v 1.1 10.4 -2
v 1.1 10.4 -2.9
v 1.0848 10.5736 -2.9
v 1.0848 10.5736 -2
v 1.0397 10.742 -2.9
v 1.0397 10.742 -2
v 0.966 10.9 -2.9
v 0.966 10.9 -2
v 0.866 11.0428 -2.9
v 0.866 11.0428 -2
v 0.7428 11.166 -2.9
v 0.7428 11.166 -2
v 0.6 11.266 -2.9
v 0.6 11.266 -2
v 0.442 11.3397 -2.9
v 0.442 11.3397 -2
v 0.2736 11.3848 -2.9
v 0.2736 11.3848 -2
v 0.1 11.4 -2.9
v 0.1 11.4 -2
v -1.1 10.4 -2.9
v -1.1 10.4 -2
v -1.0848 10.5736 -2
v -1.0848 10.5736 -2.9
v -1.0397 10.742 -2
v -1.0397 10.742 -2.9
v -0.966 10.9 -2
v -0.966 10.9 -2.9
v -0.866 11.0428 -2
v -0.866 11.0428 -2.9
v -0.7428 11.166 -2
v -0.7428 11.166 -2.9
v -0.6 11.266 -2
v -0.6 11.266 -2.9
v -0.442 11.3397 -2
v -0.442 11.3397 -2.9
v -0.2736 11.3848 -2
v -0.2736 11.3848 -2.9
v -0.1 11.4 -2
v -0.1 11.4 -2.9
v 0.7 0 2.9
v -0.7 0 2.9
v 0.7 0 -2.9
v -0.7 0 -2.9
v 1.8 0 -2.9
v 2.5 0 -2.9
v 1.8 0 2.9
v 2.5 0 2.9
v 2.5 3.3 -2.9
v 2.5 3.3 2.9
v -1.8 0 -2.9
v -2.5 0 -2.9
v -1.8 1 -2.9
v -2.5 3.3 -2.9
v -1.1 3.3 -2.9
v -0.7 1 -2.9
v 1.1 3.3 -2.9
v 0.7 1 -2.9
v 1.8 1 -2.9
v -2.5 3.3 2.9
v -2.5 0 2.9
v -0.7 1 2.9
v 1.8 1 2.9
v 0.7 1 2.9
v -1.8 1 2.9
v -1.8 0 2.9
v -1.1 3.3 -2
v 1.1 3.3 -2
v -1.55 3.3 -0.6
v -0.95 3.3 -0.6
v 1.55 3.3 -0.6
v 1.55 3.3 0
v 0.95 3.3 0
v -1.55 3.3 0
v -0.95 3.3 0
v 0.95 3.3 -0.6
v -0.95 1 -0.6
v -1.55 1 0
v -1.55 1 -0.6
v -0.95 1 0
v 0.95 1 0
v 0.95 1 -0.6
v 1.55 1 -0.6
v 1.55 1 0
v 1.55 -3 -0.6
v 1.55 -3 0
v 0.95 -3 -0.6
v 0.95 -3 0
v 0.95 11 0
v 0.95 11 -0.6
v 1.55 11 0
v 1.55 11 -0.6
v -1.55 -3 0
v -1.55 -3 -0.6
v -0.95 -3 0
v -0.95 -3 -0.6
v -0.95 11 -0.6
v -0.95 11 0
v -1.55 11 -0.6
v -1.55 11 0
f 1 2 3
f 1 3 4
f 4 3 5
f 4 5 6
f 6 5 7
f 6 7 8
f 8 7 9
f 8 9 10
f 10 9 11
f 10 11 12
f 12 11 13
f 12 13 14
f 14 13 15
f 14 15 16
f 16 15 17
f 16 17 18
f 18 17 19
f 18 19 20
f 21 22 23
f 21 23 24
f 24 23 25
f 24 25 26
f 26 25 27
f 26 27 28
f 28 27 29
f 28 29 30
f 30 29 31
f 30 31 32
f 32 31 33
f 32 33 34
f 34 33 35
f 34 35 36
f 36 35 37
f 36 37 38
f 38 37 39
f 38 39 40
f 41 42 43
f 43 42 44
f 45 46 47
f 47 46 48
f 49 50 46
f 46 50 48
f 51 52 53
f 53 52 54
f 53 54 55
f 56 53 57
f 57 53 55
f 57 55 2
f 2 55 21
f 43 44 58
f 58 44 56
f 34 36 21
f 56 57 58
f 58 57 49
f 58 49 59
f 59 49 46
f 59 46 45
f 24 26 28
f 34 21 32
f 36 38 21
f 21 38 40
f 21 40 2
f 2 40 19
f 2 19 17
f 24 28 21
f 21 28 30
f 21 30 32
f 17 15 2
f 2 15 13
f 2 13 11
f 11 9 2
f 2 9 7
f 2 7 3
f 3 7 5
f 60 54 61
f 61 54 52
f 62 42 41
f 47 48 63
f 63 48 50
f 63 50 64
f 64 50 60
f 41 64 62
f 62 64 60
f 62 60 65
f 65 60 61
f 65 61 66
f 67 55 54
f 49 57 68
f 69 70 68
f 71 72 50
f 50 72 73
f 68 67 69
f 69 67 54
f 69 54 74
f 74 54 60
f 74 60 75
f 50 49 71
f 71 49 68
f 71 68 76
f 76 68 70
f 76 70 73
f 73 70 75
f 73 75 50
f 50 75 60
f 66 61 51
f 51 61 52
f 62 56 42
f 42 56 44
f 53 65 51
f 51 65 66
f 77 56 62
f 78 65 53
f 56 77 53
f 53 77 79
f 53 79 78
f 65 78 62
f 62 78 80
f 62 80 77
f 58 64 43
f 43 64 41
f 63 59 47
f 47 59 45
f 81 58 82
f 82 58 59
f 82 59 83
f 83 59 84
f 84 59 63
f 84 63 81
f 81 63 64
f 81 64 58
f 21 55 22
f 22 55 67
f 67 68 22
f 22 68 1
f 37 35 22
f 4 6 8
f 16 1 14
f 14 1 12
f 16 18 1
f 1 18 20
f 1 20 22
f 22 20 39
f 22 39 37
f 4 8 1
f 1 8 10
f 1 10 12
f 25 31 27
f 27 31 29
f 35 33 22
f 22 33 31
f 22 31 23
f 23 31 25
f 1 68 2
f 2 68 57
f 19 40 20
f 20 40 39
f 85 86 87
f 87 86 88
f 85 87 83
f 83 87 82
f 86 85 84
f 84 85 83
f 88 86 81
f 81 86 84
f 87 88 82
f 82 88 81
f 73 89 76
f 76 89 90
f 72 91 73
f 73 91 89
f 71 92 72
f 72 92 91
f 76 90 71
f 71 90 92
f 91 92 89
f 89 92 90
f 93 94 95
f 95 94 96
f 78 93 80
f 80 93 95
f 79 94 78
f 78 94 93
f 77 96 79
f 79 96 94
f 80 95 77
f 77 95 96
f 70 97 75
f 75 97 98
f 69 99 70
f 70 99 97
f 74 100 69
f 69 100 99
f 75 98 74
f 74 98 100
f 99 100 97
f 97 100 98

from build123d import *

# Parameters (mm, degrees)
CROQUIS1_W                   = 5
CROQUIS1_H                   = 5.8
SALIENTE_EXTRUIR1_DEPTH      = 3.3
CROQUIS4_W                   = 1.1
CROQUIS4_H                   = 5.8
CORTAR_EXTRUIR1_DEPTH        = 1
CROQUIS5_W                   = 2.2
CROQUIS5_H                   = 0.9
SALIENTE_EXTRUIR2_DEPTH      = 8.1
REDONDEO4_R                  = 1
REDONDEO5_R                  = 1
SALIENTE_EXTRUIR3_DEPTH      = 4
SALIENTE_EXTRUIR3_DEPTH_BACK = 10
CROQUIS6_W                   = 0.6
CROQUIS6_H                   = 0.6


with BuildPart() as part:
    # Croquis1 → Saliente-Extruir1 (new body)
    with BuildSketch(Plane(origin=(0, 0, 0), x_dir=(1, 0, 0), z_dir=(0, 1, 0))):
        Rectangle(CROQUIS1_W, CROQUIS1_H)
    extrude(amount=SALIENTE_EXTRUIR1_DEPTH)

    # Croquis4 → Cortar-Extruir1 (cut)
    with BuildSketch(Plane.XZ):
        with Locations((-1.25, 0)):
            Rectangle(CROQUIS4_W, CROQUIS4_H)
        with Locations((1.25, 0)):
            Rectangle(CROQUIS4_W, CROQUIS4_H)
    extrude(amount=-CORTAR_EXTRUIR1_DEPTH, mode=Mode.SUBTRACT)

    # Croquis5 → Saliente-Extruir2 (add)
    with BuildSketch(Plane(origin=(0, 3.3, 0), x_dir=(1, 0, 0), z_dir=(0, 1, 0))):
        with Locations((0, 2.45)):
            Rectangle(CROQUIS5_W, CROQUIS5_H)
    extrude(amount=SALIENTE_EXTRUIR2_DEPTH)

    # Redondeo4
    redondeo4_edges = [part.edges().sort_by_distance(p)[0] for p in [
        (-1.1, 11.4, -2.45),
    ]]
    fillet(redondeo4_edges, radius=REDONDEO4_R)

    # Redondeo5
    redondeo5_edges = [part.edges().sort_by_distance(p)[0] for p in [
        (1.1, 11.4, -2.45),
    ]]
    fillet(redondeo5_edges, radius=REDONDEO5_R)

    # Croquis6 → Saliente-Extruir3 (add, two sides: drawn at the far end of the back side and taken through both)
    with BuildSketch(Plane.XZ.offset(-1).offset(-SALIENTE_EXTRUIR3_DEPTH_BACK)):
        with Locations((1.25, -0.3)):
            Rectangle(CROQUIS6_W, CROQUIS6_H)
        with Locations((-1.25, -0.3)):
            Rectangle(CROQUIS6_W, CROQUIS6_H)
    extrude(amount=SALIENTE_EXTRUIR3_DEPTH + SALIENTE_EXTRUIR3_DEPTH_BACK)


solid = part.part
